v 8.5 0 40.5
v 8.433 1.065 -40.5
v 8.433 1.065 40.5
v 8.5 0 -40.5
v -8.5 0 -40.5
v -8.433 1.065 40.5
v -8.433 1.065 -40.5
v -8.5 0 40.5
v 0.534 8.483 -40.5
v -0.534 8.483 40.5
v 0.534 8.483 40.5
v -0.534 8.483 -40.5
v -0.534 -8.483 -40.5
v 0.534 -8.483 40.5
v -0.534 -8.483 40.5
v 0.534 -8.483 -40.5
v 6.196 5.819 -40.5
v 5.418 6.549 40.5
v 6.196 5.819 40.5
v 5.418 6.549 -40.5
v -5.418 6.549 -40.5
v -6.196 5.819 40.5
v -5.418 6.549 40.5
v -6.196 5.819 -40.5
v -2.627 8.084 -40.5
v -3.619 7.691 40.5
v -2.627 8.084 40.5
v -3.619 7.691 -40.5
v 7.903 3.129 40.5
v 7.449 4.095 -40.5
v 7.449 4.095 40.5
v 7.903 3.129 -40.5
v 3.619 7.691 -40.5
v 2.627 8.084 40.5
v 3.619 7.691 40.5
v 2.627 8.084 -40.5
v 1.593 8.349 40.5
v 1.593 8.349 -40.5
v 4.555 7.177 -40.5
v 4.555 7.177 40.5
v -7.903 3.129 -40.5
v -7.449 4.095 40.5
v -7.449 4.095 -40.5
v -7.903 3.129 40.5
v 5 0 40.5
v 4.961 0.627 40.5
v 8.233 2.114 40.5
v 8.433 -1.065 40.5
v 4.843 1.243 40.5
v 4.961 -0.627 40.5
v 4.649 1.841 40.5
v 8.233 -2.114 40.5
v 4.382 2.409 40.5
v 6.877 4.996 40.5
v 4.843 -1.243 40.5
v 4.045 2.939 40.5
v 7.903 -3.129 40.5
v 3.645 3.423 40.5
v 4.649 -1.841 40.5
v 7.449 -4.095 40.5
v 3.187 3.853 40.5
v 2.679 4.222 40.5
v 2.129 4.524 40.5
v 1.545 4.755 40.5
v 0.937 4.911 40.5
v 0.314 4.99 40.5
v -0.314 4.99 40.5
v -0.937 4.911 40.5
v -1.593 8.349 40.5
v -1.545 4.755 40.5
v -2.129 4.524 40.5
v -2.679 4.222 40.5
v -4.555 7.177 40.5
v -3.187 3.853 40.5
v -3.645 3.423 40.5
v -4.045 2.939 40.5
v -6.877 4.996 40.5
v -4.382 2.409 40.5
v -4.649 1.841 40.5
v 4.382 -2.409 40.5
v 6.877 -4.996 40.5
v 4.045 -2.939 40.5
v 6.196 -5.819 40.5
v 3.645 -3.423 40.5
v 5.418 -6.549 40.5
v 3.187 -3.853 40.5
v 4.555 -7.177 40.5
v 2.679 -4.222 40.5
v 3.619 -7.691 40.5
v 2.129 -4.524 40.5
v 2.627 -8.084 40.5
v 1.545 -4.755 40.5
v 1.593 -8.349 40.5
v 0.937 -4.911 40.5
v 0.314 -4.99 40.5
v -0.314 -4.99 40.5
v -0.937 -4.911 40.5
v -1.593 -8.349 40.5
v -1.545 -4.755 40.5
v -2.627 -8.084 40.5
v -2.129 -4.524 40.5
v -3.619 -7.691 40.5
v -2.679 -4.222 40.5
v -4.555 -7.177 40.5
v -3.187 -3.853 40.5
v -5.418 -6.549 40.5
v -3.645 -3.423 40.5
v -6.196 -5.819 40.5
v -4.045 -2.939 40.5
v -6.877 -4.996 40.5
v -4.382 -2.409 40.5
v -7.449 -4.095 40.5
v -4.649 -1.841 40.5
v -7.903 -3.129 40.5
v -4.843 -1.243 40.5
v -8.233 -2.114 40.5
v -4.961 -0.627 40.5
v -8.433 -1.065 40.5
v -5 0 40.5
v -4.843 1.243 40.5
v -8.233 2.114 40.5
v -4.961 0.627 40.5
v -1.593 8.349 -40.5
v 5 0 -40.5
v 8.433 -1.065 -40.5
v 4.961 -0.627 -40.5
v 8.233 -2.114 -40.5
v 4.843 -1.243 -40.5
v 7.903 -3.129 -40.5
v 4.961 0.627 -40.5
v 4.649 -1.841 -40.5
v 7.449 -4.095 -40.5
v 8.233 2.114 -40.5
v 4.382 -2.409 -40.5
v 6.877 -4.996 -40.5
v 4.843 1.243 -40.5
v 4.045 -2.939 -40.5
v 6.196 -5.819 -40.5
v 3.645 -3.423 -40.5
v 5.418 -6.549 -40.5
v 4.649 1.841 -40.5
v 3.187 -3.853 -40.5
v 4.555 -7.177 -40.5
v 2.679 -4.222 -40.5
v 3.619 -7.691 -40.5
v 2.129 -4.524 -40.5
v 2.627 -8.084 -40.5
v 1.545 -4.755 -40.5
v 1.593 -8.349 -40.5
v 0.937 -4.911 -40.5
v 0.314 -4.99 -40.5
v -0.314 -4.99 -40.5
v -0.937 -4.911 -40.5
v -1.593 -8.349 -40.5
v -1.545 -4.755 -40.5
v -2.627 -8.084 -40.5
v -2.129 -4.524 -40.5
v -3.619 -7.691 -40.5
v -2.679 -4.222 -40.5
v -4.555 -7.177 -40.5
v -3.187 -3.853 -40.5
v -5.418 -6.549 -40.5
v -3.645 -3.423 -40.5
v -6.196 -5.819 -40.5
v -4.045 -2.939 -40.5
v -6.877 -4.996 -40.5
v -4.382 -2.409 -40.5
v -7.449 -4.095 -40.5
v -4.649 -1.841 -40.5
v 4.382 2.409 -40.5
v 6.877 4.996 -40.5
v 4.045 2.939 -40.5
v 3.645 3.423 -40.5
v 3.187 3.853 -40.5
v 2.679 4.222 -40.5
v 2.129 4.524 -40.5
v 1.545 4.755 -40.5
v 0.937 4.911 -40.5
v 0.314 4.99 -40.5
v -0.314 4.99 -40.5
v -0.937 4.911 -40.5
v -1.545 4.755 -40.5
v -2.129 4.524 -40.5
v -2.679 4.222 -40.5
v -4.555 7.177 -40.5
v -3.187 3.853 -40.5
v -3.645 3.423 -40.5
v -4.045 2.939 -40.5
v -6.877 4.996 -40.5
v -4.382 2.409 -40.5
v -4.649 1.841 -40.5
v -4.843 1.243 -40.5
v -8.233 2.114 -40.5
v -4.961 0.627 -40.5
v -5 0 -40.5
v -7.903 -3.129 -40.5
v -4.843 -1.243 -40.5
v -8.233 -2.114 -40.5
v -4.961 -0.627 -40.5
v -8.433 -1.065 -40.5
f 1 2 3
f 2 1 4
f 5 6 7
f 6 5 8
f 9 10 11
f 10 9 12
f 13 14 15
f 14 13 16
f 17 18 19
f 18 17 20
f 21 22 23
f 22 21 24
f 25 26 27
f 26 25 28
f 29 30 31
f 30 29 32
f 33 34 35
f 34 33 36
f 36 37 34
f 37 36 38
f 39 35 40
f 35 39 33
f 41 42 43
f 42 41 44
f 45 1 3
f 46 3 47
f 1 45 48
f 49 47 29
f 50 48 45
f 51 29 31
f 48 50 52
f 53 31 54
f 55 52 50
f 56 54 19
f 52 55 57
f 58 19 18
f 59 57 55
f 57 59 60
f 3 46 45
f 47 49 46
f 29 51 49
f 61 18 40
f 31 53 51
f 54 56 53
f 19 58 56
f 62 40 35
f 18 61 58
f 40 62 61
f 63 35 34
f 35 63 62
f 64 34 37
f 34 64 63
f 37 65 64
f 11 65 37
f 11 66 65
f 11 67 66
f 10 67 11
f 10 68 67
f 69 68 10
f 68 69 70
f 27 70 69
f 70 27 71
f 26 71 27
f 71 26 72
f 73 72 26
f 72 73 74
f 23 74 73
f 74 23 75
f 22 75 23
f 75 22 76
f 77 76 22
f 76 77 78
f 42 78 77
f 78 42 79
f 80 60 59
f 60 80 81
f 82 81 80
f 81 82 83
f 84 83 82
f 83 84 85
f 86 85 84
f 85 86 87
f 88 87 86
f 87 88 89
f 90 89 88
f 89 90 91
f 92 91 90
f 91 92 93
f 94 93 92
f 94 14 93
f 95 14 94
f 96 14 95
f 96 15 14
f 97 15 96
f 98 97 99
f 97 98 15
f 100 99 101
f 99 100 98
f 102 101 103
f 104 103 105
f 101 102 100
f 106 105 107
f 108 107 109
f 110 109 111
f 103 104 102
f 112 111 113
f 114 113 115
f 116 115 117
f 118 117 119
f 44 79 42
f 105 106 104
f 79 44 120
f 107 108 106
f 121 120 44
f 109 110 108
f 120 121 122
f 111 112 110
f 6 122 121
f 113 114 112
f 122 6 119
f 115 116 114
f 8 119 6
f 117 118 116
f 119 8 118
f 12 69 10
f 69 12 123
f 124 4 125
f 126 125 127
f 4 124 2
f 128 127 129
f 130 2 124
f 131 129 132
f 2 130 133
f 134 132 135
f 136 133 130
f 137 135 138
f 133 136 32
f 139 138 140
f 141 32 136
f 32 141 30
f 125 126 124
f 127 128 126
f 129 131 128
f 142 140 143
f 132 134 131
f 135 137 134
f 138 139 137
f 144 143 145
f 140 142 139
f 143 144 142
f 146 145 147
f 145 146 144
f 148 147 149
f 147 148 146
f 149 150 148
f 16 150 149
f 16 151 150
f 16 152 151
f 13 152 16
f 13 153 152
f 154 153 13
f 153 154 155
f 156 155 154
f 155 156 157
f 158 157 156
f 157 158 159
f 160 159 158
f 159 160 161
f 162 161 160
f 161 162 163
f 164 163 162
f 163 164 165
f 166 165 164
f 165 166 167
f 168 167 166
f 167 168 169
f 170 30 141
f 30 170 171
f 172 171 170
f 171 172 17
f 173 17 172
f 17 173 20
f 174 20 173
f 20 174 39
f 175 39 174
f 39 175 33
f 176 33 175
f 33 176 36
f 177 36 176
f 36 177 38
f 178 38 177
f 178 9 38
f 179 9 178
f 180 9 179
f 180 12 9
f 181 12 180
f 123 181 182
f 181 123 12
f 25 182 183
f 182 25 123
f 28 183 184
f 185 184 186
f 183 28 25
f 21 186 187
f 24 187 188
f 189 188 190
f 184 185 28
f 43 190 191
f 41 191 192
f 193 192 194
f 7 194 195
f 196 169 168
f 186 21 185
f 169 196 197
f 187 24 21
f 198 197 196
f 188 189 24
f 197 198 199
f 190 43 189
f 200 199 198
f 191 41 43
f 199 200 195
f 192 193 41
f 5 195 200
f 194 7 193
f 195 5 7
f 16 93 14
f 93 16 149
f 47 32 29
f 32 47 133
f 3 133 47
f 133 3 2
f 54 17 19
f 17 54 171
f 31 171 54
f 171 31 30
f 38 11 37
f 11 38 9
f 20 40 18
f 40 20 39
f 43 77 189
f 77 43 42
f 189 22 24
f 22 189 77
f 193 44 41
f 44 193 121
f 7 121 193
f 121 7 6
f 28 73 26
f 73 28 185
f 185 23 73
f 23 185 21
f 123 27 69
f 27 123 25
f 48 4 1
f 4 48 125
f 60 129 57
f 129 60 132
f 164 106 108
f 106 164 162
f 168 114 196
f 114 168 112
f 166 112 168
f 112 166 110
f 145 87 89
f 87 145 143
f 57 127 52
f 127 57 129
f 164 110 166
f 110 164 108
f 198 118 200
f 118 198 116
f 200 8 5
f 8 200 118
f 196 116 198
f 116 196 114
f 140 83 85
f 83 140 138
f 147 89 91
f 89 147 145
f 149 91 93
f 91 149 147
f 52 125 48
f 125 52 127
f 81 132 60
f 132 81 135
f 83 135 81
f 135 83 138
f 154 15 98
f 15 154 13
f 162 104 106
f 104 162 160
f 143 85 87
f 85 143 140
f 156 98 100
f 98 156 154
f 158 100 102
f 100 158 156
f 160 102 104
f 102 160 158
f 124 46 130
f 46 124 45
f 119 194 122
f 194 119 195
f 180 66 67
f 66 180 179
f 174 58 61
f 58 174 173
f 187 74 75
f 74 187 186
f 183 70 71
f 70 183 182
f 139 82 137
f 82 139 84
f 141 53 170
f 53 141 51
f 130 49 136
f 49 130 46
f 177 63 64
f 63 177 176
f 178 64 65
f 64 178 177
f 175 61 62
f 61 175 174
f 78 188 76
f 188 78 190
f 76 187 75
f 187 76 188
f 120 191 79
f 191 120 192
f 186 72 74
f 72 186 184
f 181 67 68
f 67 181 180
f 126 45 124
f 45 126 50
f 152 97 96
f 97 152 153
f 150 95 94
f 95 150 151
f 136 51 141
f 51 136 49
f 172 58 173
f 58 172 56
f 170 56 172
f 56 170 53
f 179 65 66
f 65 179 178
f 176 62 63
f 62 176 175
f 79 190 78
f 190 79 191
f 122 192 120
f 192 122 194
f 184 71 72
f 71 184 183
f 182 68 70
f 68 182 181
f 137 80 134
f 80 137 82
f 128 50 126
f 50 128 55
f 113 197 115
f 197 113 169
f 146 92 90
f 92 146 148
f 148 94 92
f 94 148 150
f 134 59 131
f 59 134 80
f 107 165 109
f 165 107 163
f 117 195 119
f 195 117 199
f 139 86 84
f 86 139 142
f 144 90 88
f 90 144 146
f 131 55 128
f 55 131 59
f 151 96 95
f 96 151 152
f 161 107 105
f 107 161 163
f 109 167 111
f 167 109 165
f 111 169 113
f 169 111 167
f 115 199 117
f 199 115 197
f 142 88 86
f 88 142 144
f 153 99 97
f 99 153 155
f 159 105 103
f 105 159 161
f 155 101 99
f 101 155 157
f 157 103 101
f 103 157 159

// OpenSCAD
$fn = 50;


difference() {
	union() {
		translate(v = [0, 0, -40.5000000000]) {
			cylinder(h = 81, r = 8.5000000000);
		}
	}
	union() {
		translate(v = [0, 0, -100.0000000000]) {
			cylinder(h = 200, r = 5.0000000000);
		}
	}
}
